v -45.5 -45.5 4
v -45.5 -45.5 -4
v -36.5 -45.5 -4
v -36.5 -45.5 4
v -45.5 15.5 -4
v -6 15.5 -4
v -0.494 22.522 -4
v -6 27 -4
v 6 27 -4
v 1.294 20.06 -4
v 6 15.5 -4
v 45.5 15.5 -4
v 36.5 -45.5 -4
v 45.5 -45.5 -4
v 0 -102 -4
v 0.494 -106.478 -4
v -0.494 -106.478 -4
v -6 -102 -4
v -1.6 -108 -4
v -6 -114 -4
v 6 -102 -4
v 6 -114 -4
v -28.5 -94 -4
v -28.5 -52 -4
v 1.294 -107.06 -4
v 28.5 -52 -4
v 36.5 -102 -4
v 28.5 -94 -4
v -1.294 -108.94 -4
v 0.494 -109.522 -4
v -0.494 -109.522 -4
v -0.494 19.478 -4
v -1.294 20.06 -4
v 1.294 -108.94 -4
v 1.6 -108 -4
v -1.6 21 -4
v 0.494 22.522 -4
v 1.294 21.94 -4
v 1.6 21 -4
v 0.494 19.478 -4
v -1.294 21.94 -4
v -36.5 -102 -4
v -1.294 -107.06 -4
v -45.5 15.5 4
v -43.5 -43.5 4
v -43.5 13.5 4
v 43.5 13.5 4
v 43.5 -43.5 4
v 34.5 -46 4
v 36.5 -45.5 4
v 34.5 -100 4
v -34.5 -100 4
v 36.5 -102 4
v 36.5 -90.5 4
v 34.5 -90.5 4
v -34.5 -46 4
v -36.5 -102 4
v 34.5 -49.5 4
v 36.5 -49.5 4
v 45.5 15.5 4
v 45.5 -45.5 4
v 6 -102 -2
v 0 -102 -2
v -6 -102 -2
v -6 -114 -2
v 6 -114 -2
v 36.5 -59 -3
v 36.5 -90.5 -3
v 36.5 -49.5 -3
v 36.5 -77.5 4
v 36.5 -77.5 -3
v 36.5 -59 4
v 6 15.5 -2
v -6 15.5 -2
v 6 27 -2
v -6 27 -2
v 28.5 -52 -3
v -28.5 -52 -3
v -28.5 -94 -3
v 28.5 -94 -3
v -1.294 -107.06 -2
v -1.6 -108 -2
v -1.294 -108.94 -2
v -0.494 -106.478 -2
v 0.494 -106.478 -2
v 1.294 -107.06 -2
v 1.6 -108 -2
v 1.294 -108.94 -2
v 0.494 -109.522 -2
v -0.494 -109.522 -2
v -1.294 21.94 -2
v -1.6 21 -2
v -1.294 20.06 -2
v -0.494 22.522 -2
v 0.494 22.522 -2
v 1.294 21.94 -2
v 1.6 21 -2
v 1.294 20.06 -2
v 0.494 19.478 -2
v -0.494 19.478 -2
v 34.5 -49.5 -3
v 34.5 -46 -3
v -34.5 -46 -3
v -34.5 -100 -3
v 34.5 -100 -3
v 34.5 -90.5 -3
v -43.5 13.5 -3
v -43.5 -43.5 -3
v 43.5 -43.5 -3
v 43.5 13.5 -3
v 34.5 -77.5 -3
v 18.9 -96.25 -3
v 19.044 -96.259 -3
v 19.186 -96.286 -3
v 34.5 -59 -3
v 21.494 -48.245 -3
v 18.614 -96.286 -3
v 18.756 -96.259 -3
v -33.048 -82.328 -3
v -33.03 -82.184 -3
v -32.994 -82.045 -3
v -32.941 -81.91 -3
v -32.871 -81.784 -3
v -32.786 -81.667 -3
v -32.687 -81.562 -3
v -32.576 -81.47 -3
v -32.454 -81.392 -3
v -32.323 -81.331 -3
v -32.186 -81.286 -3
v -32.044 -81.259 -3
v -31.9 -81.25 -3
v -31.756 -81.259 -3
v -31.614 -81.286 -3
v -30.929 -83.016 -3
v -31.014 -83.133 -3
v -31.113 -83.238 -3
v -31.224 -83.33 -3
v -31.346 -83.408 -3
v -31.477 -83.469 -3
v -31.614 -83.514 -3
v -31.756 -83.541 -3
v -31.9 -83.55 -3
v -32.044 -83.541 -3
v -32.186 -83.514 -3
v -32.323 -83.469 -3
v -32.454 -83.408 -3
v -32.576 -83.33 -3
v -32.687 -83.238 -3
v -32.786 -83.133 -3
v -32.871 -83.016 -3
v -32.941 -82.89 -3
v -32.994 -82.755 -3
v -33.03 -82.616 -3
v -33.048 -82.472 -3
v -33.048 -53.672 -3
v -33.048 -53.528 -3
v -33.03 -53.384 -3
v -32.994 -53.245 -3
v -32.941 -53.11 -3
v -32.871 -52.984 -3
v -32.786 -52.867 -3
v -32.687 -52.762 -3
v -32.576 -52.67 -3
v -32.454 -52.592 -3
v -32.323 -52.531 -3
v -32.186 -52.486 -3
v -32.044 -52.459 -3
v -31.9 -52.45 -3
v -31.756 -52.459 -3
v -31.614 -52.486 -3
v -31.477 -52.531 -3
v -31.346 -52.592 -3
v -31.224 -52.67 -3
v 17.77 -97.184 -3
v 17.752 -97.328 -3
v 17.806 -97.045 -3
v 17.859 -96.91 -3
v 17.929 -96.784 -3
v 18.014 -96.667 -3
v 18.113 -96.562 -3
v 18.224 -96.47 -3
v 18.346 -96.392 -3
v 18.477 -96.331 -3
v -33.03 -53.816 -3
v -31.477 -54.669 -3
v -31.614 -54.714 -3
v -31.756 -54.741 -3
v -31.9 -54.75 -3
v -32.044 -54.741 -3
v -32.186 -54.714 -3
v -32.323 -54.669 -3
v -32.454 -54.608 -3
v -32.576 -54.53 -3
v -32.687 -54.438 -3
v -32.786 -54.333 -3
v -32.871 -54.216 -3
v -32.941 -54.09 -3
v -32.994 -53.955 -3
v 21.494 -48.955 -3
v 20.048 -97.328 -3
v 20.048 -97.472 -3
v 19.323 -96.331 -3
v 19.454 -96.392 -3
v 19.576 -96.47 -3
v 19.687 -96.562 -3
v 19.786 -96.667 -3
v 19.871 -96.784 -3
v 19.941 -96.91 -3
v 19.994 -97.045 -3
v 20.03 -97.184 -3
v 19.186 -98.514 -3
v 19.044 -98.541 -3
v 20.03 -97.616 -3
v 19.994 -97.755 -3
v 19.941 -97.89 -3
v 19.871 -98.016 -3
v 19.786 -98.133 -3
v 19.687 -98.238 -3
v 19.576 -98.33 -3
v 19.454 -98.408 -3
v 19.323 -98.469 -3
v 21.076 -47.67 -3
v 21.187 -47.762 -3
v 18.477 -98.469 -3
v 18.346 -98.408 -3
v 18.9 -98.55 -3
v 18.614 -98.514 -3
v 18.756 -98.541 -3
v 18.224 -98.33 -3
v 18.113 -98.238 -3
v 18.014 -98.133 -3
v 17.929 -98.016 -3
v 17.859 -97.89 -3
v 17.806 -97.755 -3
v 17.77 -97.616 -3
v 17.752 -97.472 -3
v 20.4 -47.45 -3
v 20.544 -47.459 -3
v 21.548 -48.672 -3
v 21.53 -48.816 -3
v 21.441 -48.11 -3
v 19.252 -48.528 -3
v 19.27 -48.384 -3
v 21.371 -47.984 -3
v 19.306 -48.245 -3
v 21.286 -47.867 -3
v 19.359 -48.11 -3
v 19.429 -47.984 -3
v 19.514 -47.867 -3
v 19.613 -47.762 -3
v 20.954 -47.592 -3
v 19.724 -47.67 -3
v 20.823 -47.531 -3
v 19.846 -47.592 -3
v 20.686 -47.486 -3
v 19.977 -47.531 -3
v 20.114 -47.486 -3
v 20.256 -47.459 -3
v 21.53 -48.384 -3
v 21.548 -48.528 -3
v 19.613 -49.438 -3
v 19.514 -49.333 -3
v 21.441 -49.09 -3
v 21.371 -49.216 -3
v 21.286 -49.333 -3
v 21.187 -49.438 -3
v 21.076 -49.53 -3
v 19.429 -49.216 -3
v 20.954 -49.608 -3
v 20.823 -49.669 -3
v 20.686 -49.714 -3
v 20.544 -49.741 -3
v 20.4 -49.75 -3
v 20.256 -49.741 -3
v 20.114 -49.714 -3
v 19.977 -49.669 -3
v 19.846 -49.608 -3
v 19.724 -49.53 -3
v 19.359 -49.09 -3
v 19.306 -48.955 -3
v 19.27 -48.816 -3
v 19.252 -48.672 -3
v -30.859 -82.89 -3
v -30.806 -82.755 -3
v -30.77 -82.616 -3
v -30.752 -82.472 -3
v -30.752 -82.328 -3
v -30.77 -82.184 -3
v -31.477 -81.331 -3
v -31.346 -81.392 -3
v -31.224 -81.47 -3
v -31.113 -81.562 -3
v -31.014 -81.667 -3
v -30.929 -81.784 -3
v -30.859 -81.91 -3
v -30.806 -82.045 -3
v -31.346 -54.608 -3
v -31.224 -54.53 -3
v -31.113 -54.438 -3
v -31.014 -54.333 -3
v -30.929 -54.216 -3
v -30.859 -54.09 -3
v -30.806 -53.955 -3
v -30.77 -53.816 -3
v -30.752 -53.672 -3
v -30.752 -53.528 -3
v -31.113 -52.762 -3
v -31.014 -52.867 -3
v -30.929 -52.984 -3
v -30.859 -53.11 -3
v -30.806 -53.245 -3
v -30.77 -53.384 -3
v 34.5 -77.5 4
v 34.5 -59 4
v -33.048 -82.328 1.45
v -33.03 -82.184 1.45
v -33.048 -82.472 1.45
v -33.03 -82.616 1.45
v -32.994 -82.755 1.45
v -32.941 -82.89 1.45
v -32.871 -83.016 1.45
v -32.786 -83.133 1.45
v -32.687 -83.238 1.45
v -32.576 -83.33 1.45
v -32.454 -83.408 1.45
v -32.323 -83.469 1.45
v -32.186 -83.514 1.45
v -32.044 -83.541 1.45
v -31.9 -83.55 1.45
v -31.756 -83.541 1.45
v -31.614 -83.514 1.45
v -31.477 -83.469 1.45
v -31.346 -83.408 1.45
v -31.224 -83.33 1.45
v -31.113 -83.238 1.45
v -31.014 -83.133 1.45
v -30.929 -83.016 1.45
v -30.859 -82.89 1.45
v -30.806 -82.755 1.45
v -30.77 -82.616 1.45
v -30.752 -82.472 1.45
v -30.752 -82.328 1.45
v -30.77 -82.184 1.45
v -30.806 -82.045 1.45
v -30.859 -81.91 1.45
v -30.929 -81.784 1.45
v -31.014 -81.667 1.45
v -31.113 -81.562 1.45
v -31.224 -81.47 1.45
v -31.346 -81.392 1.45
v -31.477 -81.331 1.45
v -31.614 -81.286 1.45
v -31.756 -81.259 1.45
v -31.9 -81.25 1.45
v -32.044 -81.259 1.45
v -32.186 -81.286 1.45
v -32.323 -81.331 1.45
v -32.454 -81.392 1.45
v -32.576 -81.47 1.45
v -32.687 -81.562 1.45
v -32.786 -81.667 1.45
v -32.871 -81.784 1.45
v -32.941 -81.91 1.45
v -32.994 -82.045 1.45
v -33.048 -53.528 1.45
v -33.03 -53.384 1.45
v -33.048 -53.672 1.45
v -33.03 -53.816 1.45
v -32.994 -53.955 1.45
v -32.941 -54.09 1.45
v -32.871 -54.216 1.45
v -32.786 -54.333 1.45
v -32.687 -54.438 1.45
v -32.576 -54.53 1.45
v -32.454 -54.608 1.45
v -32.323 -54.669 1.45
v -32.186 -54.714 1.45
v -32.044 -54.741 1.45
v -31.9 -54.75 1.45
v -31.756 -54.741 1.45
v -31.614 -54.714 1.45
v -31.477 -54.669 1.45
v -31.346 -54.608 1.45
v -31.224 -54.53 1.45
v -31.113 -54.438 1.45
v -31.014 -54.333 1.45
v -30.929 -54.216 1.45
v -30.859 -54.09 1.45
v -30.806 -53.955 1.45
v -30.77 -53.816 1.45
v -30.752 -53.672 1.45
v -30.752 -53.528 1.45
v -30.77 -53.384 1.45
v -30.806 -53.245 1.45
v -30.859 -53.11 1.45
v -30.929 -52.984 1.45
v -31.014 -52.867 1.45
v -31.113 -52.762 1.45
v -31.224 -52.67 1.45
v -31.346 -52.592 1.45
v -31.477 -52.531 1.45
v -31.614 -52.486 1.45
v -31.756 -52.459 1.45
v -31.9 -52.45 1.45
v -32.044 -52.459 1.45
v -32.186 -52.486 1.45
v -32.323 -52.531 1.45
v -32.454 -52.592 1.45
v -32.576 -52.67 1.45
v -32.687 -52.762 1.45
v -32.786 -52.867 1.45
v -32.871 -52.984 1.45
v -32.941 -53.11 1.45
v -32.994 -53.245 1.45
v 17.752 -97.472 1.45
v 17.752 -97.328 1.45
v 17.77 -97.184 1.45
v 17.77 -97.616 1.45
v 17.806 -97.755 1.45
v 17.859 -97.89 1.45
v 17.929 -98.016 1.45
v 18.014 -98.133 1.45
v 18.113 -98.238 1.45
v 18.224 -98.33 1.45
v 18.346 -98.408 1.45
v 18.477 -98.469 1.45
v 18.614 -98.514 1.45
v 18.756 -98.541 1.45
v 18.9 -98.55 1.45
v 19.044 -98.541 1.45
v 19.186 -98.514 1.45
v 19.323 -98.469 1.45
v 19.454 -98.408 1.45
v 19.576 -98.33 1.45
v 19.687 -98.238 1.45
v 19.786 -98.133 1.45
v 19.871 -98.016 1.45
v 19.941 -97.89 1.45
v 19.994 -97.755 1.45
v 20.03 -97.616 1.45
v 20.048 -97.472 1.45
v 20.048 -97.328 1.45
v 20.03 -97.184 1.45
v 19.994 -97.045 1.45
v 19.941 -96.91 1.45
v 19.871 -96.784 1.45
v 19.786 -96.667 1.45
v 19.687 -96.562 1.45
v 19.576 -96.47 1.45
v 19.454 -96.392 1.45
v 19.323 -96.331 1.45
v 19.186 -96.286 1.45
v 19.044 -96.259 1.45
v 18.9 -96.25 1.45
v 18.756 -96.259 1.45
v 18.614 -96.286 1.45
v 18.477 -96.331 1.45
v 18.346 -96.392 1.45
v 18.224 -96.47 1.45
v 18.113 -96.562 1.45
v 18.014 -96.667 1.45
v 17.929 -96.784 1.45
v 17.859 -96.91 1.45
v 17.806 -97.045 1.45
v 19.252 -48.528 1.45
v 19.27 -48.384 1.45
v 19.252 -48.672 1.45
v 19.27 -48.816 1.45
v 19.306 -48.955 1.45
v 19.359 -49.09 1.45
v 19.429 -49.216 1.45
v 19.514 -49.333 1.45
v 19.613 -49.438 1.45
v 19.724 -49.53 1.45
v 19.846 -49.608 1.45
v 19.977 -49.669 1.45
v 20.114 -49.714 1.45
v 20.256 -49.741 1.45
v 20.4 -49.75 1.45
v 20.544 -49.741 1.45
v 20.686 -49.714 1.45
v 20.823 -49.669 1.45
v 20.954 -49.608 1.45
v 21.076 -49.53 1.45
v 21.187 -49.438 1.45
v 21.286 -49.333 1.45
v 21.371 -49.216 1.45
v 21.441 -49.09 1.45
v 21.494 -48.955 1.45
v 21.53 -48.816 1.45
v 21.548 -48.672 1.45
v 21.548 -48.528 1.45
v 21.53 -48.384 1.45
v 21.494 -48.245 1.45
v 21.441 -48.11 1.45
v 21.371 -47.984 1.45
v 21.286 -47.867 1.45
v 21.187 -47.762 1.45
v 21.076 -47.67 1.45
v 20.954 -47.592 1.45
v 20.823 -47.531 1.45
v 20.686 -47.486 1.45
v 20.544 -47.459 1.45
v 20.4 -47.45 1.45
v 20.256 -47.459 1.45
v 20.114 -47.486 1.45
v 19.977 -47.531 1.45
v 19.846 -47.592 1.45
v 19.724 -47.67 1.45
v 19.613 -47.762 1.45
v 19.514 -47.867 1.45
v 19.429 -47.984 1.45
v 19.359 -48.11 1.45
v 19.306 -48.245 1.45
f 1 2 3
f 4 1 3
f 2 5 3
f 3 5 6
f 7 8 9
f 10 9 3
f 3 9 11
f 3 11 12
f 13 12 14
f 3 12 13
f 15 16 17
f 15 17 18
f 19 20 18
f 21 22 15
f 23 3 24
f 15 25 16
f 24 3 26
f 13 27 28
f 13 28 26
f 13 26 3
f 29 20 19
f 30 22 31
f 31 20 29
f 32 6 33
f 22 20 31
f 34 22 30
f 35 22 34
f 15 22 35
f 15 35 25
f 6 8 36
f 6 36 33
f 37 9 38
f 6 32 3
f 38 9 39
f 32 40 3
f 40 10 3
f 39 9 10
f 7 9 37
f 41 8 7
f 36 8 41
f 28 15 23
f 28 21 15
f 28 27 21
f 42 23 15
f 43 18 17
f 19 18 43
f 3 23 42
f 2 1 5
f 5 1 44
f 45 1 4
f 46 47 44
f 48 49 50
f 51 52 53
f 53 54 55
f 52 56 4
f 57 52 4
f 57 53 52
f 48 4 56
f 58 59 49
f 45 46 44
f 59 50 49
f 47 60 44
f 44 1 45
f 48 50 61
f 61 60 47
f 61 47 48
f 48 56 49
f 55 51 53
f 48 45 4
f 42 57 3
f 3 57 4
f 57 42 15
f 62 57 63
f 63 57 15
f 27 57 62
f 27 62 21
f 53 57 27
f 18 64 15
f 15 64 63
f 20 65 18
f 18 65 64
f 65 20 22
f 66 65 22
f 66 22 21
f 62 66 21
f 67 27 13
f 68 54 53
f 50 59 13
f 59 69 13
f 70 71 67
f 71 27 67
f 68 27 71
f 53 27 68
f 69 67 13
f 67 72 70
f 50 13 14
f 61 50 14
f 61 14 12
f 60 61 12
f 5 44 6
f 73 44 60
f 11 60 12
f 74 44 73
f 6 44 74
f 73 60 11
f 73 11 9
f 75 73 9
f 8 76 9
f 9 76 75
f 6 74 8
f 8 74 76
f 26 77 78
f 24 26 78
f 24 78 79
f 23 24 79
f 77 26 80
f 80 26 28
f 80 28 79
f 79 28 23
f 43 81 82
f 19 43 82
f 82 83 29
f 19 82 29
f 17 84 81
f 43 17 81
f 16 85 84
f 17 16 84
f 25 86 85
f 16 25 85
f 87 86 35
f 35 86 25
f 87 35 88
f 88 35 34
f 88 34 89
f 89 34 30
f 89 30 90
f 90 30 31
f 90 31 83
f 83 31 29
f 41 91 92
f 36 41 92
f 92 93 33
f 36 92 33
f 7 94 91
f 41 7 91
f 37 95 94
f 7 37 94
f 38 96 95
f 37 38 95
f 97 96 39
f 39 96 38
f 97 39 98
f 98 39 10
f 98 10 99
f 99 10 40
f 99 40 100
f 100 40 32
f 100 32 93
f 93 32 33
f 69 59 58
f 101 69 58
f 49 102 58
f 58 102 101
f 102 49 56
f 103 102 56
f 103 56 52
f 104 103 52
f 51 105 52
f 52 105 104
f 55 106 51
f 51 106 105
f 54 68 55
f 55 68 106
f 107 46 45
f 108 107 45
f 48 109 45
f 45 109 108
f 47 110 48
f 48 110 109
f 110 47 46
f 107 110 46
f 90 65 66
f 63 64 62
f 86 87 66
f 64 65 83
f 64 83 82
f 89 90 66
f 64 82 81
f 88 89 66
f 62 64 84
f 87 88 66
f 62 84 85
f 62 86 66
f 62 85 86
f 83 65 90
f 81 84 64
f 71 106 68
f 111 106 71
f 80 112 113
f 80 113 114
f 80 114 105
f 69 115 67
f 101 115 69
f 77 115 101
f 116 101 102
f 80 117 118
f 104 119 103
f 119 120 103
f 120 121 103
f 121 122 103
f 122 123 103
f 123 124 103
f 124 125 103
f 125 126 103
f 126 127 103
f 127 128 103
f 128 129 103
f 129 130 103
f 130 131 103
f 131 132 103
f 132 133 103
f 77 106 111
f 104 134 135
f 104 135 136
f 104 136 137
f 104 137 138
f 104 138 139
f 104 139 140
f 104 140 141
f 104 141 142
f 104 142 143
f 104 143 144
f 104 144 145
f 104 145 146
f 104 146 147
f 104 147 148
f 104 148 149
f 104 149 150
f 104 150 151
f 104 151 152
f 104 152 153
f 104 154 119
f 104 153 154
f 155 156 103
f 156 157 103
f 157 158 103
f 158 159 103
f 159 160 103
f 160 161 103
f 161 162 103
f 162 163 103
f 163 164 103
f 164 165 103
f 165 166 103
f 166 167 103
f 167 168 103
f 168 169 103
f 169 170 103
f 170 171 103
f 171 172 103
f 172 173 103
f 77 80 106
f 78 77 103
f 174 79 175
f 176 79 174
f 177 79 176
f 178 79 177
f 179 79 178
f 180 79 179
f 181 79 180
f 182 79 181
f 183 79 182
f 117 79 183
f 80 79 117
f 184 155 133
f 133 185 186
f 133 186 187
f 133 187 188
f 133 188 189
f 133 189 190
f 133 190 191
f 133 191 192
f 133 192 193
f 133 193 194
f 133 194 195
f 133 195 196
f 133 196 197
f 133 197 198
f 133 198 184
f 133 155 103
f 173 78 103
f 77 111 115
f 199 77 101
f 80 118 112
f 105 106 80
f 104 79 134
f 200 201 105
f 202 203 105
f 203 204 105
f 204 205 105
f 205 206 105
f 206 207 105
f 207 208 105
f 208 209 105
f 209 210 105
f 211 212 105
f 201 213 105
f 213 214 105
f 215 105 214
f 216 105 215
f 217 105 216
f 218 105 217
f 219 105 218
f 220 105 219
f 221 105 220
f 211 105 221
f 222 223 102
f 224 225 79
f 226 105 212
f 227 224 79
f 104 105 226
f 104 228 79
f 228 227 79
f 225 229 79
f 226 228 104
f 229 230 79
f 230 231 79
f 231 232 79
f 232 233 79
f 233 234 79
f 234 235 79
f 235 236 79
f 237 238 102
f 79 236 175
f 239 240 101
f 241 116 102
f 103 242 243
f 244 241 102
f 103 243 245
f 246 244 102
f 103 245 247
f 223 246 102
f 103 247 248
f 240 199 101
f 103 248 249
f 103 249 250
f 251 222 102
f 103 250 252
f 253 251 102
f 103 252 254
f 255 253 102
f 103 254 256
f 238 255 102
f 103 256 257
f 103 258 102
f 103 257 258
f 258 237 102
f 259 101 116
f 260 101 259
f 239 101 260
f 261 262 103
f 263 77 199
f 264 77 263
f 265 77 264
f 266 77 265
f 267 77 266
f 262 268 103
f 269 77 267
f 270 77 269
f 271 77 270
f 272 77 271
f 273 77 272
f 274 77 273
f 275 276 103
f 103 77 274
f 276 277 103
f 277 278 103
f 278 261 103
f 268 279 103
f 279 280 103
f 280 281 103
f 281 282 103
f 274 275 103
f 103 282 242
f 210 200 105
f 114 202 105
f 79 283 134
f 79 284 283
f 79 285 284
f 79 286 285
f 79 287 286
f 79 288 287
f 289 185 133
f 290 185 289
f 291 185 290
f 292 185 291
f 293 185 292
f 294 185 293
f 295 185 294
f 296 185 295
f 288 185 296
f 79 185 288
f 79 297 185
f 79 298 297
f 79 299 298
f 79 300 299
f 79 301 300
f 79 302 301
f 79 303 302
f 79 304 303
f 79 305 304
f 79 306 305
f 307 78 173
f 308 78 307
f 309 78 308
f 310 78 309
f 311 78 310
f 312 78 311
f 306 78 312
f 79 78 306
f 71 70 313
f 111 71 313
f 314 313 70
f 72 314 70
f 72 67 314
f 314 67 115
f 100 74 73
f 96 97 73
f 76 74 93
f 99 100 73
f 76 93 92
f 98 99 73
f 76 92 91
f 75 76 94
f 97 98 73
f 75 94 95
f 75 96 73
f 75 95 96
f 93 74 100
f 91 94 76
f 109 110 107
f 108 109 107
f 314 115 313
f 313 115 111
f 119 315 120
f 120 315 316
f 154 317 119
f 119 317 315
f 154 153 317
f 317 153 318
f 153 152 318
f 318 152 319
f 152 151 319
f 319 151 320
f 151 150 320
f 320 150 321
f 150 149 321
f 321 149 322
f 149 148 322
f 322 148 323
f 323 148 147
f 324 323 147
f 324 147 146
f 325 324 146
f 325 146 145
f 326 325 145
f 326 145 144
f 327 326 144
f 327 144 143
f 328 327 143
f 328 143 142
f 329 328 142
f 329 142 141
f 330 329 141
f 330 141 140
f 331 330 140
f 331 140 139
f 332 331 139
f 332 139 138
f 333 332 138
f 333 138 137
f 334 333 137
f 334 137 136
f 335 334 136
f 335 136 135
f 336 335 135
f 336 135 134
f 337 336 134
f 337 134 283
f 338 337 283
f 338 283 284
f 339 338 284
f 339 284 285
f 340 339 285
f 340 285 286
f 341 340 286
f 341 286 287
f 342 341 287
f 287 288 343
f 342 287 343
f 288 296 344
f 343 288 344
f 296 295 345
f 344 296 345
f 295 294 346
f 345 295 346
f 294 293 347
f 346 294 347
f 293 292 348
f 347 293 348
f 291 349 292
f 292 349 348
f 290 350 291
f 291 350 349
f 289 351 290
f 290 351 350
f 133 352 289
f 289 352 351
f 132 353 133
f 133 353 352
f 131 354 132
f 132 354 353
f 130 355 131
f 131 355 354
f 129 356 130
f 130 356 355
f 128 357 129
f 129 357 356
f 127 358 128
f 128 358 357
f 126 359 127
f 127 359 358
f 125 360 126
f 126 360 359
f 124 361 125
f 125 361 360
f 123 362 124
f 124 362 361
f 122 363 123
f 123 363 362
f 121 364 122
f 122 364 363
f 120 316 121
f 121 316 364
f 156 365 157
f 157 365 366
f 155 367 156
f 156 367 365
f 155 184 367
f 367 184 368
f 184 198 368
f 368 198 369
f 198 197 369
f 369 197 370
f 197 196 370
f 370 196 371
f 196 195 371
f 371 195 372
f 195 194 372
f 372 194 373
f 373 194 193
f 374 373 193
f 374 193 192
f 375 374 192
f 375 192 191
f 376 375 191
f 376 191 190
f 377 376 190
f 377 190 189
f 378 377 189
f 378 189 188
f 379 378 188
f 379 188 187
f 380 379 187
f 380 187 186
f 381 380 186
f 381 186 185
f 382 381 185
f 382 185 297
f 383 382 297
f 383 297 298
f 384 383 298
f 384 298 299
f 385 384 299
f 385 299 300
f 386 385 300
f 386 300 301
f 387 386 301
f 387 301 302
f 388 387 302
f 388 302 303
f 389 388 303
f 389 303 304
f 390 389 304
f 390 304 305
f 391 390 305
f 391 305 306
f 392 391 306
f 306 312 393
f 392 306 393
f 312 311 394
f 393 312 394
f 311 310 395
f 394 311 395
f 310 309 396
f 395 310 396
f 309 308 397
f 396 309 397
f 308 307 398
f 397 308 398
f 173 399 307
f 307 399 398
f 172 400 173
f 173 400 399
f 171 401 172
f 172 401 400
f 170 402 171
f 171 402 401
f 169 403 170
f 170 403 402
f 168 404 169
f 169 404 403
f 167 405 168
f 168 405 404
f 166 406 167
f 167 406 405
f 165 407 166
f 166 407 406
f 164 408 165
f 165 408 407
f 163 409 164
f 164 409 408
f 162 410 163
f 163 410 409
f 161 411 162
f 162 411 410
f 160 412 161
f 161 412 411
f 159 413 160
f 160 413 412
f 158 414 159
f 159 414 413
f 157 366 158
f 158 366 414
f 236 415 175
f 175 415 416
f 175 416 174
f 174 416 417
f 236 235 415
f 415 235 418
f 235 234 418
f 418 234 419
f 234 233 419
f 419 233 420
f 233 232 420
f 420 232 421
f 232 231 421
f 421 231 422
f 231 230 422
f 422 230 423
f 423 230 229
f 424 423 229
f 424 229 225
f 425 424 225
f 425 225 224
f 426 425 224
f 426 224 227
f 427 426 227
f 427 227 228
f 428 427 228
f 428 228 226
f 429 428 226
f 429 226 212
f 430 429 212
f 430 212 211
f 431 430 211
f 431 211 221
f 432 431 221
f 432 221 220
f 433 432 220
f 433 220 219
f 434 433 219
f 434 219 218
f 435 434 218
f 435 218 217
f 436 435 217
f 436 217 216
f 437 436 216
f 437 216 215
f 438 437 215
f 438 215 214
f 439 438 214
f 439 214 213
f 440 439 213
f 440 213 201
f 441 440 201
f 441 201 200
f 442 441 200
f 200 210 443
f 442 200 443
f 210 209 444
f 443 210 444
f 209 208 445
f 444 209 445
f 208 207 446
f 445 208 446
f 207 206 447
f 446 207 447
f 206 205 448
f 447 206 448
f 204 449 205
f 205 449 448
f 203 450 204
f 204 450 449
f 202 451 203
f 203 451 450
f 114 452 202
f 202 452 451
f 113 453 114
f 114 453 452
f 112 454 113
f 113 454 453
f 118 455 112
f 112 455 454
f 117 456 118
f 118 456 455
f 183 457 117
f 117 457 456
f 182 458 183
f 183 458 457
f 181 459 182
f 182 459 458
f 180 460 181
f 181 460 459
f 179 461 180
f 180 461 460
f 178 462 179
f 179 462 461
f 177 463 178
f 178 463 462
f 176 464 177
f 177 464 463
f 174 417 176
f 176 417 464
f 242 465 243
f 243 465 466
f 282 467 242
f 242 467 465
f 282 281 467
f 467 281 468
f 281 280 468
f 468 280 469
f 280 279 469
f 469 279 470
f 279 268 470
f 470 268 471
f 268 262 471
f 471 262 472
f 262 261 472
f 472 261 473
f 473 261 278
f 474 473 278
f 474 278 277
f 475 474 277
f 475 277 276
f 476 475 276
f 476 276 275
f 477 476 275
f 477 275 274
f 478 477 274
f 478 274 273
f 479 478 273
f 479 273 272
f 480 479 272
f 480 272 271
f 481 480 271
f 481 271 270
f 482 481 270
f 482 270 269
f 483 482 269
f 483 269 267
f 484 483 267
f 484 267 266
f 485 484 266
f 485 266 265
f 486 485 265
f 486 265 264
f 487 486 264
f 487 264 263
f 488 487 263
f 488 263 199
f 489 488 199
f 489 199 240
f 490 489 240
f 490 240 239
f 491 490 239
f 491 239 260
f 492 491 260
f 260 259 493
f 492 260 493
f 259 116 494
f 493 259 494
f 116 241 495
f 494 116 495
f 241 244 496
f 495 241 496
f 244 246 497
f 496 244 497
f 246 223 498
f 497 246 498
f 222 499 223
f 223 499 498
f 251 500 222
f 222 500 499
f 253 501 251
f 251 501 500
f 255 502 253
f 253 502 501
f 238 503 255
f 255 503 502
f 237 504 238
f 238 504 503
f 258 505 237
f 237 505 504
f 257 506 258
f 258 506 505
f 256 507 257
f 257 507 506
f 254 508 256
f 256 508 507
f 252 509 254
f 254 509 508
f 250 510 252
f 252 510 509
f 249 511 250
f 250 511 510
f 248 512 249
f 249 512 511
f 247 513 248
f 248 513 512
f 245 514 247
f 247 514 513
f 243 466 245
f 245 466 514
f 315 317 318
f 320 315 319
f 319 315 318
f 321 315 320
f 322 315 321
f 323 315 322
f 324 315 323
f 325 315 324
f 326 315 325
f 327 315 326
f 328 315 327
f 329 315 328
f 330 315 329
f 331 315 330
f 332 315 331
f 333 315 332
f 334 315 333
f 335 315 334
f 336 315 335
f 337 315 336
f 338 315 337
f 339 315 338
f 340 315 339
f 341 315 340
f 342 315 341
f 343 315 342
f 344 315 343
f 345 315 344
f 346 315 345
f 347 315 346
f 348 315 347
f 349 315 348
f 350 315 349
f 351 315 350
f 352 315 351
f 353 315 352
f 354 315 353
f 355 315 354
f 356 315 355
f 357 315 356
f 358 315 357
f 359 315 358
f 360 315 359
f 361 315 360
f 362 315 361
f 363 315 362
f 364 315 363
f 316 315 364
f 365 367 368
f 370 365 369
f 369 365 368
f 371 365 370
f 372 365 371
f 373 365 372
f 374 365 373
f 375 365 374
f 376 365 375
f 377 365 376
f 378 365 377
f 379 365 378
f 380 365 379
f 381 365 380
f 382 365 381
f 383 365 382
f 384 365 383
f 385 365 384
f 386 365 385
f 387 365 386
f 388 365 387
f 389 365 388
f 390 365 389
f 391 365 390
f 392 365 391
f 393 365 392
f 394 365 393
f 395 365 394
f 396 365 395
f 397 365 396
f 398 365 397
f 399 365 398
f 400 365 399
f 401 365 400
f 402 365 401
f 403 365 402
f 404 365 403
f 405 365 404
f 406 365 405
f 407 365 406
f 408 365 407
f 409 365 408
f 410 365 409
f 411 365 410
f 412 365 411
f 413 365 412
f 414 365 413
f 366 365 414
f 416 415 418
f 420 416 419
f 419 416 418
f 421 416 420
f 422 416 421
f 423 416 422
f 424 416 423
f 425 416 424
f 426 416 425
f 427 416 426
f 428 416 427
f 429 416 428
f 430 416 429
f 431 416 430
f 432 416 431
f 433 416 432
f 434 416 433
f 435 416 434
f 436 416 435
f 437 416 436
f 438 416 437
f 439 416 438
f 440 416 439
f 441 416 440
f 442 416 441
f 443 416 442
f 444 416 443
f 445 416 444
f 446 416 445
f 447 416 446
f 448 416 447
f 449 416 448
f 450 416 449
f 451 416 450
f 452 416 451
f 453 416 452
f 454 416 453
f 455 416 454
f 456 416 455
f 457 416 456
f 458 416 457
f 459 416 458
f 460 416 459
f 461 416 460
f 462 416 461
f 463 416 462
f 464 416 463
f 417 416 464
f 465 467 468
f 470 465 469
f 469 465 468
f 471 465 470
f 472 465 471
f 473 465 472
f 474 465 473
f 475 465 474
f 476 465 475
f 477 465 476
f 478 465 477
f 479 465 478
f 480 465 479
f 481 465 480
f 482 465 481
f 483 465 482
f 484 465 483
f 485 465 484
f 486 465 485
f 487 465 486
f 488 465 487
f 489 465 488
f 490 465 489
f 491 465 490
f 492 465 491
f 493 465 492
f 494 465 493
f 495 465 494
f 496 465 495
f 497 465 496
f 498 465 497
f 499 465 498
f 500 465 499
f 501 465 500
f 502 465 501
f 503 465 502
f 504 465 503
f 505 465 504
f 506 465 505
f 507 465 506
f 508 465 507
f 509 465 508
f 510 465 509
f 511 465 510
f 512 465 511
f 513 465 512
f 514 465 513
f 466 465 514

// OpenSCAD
// file: screw_attach.scad
module ScrewAttachment()
{
    height = 2;
    length = 12;
    width = 12;

    hole_radius = 1.6;

   difference() {
    cube([length, width, height], center=true);

        cylinder(r=hole_radius, h=height, center=true, $fn=10);
    }
}

//ScrewAttachment();
// file: breadboard.scad
// half breadboard is 8.5cm x 5.5cm
BREADBOARD_LENGTH = 87;
BREADBOARD_WIDTH = 57;

wall_thickness = 2;
wall_height = 7;
bottom_thickness = 1;

module breadboard_holder() {
 difference() {
	// Exterior box
	cube([BREADBOARD_WIDTH+(2*wall_thickness),BREADBOARD_LENGTH+(2*wall_thickness),wall_height+bottom_thickness], center=true);

	// Interior recess
	translate([0,0,bottom_thickness/2.0])
		cube([BREADBOARD_WIDTH,BREADBOARD_LENGTH,wall_height], center=true);
 }
}


//breadboard_holder();
// file: arduino_uno.scad
module ArduinoBase() 
{

arduino_width = 54;
arduino_length = 69;
arduino_usb_width = 13;
arduino_usb_height = 15;
arduino_usb_x = 9.5;
arduino_power_width = 9.5;
arduino_power_height = 15;
arduino_power_x = 3.5;

wall_thickness = 2;
wall_height = 7;
bottom_thickness = 1;
side_shoulder = 6;
drill=3.2;
ground_level = -3.55;
pin_height = 5;
pin_radius = 1.15;


difference()
{
	// Exterior box
	cube([arduino_width+(2*wall_thickness),arduino_length+(2*wall_thickness),wall_height+bottom_thickness], center=true);

	// Interior recess
	translate([0,0,bottom_thickness/2.0])
		cube([arduino_width,arduino_length,wall_height], center=true);

	// Bottom hole
	cube([arduino_width-(2*side_shoulder),arduino_length-(2*side_shoulder),wall_height+bottom_thickness], center=true);

	// USB hole
	translate([	-1*((arduino_width/2.0)-(arduino_usb_width/2.0)-arduino_usb_x),
			-1*(arduino_length/2.0)-(wall_thickness/2.0),
			-1*(wall_height/2.0 - arduino_usb_height/2.0)+bottom_thickness/2.0])
	{
		cube([arduino_usb_width,wall_thickness,arduino_usb_height], center=true);
	}

	// Power hole
	translate([	((arduino_width/2.0)-(arduino_power_width/2.0)-arduino_power_x),
			-1*(arduino_length/2.0)-(wall_thickness/2.0),
			-1*(wall_height/2.0 - arduino_power_height/2.0)+bottom_thickness/2.0])
	{
		cube([arduino_power_width,wall_thickness,arduino_power_height], center=true);
	}
	
	// Drills
	//translate ([arduino_width/2-drill/2-1,-arduino_length/2+12.5+drill/2,0]) cylinder (r=drill/2, h=10*drill, center=true, $fn=50);
	//translate ([-arduino_width/2+drill/2+1,-arduino_length/2+14+drill/2,0]) cylinder (r=drill/2, h=10*drill, center=true, $fn=50);
	//translate ([arduino_width/2-drill/2-6,+arduino_length/2-1-drill/2,0]) cylinder (r=drill/2, h=10*drill, center=true, $fn=50);
	//translate ([-arduino_width/2+drill/2+16,+arduino_length/2-1-drill/2,0]) cylinder (r=drill/2, h=10*drill, center=true, $fn=50);

}

// Raised cylinders for holding arduino
translate ([arduino_width/2-drill/2-1,-arduino_length/2+12.5+drill/2,ground_level]) cylinder (r=pin_radius, h=pin_height, $fn=50);
	translate ([-arduino_width/2+drill/2+1,-arduino_length/2+14+drill/2,ground_level]) cylinder (r=pin_radius, h=pin_height, $fn=50);
	translate ([arduino_width/2-drill/2-6,+arduino_length/2-1-drill/2,ground_level]) cylinder (r=pin_radius, h=pin_height, $fn=50);
	translate ([-arduino_width/2+drill/2+16,+arduino_length/2-1-drill/2,ground_level]) cylinder (r=pin_radius, h=pin_height, $fn=50);
}

//ArduinoBase();
// main file
include <arduino_uno.scad>;
include <breadboard.scad>;
include <screw_attach.scad>;

module ScrewPlatform() {

   translate([0, 21, -3]) {
		ScrewAttachment();
   }

   translate([0, -108, -3]) {
		ScrewAttachment();
   }

}

module ElectronicsBase() {

   // arduino uno base
   translate([0, -73, 0]) {
      rotate(a=[0,0,90]) {
           ArduinoBase();
      }
   }
 	
   // half breadboard
   translate([0, -15, 0]) {
     rotate(a=[0,0,90]) {
		  breadboard_holder();
     }
   }

	translate([0, 0, 0]) {
	   ScrewPlatform();
   }
}


ElectronicsBase();

//ScrewAttachment();
//ScrewPlatform();
